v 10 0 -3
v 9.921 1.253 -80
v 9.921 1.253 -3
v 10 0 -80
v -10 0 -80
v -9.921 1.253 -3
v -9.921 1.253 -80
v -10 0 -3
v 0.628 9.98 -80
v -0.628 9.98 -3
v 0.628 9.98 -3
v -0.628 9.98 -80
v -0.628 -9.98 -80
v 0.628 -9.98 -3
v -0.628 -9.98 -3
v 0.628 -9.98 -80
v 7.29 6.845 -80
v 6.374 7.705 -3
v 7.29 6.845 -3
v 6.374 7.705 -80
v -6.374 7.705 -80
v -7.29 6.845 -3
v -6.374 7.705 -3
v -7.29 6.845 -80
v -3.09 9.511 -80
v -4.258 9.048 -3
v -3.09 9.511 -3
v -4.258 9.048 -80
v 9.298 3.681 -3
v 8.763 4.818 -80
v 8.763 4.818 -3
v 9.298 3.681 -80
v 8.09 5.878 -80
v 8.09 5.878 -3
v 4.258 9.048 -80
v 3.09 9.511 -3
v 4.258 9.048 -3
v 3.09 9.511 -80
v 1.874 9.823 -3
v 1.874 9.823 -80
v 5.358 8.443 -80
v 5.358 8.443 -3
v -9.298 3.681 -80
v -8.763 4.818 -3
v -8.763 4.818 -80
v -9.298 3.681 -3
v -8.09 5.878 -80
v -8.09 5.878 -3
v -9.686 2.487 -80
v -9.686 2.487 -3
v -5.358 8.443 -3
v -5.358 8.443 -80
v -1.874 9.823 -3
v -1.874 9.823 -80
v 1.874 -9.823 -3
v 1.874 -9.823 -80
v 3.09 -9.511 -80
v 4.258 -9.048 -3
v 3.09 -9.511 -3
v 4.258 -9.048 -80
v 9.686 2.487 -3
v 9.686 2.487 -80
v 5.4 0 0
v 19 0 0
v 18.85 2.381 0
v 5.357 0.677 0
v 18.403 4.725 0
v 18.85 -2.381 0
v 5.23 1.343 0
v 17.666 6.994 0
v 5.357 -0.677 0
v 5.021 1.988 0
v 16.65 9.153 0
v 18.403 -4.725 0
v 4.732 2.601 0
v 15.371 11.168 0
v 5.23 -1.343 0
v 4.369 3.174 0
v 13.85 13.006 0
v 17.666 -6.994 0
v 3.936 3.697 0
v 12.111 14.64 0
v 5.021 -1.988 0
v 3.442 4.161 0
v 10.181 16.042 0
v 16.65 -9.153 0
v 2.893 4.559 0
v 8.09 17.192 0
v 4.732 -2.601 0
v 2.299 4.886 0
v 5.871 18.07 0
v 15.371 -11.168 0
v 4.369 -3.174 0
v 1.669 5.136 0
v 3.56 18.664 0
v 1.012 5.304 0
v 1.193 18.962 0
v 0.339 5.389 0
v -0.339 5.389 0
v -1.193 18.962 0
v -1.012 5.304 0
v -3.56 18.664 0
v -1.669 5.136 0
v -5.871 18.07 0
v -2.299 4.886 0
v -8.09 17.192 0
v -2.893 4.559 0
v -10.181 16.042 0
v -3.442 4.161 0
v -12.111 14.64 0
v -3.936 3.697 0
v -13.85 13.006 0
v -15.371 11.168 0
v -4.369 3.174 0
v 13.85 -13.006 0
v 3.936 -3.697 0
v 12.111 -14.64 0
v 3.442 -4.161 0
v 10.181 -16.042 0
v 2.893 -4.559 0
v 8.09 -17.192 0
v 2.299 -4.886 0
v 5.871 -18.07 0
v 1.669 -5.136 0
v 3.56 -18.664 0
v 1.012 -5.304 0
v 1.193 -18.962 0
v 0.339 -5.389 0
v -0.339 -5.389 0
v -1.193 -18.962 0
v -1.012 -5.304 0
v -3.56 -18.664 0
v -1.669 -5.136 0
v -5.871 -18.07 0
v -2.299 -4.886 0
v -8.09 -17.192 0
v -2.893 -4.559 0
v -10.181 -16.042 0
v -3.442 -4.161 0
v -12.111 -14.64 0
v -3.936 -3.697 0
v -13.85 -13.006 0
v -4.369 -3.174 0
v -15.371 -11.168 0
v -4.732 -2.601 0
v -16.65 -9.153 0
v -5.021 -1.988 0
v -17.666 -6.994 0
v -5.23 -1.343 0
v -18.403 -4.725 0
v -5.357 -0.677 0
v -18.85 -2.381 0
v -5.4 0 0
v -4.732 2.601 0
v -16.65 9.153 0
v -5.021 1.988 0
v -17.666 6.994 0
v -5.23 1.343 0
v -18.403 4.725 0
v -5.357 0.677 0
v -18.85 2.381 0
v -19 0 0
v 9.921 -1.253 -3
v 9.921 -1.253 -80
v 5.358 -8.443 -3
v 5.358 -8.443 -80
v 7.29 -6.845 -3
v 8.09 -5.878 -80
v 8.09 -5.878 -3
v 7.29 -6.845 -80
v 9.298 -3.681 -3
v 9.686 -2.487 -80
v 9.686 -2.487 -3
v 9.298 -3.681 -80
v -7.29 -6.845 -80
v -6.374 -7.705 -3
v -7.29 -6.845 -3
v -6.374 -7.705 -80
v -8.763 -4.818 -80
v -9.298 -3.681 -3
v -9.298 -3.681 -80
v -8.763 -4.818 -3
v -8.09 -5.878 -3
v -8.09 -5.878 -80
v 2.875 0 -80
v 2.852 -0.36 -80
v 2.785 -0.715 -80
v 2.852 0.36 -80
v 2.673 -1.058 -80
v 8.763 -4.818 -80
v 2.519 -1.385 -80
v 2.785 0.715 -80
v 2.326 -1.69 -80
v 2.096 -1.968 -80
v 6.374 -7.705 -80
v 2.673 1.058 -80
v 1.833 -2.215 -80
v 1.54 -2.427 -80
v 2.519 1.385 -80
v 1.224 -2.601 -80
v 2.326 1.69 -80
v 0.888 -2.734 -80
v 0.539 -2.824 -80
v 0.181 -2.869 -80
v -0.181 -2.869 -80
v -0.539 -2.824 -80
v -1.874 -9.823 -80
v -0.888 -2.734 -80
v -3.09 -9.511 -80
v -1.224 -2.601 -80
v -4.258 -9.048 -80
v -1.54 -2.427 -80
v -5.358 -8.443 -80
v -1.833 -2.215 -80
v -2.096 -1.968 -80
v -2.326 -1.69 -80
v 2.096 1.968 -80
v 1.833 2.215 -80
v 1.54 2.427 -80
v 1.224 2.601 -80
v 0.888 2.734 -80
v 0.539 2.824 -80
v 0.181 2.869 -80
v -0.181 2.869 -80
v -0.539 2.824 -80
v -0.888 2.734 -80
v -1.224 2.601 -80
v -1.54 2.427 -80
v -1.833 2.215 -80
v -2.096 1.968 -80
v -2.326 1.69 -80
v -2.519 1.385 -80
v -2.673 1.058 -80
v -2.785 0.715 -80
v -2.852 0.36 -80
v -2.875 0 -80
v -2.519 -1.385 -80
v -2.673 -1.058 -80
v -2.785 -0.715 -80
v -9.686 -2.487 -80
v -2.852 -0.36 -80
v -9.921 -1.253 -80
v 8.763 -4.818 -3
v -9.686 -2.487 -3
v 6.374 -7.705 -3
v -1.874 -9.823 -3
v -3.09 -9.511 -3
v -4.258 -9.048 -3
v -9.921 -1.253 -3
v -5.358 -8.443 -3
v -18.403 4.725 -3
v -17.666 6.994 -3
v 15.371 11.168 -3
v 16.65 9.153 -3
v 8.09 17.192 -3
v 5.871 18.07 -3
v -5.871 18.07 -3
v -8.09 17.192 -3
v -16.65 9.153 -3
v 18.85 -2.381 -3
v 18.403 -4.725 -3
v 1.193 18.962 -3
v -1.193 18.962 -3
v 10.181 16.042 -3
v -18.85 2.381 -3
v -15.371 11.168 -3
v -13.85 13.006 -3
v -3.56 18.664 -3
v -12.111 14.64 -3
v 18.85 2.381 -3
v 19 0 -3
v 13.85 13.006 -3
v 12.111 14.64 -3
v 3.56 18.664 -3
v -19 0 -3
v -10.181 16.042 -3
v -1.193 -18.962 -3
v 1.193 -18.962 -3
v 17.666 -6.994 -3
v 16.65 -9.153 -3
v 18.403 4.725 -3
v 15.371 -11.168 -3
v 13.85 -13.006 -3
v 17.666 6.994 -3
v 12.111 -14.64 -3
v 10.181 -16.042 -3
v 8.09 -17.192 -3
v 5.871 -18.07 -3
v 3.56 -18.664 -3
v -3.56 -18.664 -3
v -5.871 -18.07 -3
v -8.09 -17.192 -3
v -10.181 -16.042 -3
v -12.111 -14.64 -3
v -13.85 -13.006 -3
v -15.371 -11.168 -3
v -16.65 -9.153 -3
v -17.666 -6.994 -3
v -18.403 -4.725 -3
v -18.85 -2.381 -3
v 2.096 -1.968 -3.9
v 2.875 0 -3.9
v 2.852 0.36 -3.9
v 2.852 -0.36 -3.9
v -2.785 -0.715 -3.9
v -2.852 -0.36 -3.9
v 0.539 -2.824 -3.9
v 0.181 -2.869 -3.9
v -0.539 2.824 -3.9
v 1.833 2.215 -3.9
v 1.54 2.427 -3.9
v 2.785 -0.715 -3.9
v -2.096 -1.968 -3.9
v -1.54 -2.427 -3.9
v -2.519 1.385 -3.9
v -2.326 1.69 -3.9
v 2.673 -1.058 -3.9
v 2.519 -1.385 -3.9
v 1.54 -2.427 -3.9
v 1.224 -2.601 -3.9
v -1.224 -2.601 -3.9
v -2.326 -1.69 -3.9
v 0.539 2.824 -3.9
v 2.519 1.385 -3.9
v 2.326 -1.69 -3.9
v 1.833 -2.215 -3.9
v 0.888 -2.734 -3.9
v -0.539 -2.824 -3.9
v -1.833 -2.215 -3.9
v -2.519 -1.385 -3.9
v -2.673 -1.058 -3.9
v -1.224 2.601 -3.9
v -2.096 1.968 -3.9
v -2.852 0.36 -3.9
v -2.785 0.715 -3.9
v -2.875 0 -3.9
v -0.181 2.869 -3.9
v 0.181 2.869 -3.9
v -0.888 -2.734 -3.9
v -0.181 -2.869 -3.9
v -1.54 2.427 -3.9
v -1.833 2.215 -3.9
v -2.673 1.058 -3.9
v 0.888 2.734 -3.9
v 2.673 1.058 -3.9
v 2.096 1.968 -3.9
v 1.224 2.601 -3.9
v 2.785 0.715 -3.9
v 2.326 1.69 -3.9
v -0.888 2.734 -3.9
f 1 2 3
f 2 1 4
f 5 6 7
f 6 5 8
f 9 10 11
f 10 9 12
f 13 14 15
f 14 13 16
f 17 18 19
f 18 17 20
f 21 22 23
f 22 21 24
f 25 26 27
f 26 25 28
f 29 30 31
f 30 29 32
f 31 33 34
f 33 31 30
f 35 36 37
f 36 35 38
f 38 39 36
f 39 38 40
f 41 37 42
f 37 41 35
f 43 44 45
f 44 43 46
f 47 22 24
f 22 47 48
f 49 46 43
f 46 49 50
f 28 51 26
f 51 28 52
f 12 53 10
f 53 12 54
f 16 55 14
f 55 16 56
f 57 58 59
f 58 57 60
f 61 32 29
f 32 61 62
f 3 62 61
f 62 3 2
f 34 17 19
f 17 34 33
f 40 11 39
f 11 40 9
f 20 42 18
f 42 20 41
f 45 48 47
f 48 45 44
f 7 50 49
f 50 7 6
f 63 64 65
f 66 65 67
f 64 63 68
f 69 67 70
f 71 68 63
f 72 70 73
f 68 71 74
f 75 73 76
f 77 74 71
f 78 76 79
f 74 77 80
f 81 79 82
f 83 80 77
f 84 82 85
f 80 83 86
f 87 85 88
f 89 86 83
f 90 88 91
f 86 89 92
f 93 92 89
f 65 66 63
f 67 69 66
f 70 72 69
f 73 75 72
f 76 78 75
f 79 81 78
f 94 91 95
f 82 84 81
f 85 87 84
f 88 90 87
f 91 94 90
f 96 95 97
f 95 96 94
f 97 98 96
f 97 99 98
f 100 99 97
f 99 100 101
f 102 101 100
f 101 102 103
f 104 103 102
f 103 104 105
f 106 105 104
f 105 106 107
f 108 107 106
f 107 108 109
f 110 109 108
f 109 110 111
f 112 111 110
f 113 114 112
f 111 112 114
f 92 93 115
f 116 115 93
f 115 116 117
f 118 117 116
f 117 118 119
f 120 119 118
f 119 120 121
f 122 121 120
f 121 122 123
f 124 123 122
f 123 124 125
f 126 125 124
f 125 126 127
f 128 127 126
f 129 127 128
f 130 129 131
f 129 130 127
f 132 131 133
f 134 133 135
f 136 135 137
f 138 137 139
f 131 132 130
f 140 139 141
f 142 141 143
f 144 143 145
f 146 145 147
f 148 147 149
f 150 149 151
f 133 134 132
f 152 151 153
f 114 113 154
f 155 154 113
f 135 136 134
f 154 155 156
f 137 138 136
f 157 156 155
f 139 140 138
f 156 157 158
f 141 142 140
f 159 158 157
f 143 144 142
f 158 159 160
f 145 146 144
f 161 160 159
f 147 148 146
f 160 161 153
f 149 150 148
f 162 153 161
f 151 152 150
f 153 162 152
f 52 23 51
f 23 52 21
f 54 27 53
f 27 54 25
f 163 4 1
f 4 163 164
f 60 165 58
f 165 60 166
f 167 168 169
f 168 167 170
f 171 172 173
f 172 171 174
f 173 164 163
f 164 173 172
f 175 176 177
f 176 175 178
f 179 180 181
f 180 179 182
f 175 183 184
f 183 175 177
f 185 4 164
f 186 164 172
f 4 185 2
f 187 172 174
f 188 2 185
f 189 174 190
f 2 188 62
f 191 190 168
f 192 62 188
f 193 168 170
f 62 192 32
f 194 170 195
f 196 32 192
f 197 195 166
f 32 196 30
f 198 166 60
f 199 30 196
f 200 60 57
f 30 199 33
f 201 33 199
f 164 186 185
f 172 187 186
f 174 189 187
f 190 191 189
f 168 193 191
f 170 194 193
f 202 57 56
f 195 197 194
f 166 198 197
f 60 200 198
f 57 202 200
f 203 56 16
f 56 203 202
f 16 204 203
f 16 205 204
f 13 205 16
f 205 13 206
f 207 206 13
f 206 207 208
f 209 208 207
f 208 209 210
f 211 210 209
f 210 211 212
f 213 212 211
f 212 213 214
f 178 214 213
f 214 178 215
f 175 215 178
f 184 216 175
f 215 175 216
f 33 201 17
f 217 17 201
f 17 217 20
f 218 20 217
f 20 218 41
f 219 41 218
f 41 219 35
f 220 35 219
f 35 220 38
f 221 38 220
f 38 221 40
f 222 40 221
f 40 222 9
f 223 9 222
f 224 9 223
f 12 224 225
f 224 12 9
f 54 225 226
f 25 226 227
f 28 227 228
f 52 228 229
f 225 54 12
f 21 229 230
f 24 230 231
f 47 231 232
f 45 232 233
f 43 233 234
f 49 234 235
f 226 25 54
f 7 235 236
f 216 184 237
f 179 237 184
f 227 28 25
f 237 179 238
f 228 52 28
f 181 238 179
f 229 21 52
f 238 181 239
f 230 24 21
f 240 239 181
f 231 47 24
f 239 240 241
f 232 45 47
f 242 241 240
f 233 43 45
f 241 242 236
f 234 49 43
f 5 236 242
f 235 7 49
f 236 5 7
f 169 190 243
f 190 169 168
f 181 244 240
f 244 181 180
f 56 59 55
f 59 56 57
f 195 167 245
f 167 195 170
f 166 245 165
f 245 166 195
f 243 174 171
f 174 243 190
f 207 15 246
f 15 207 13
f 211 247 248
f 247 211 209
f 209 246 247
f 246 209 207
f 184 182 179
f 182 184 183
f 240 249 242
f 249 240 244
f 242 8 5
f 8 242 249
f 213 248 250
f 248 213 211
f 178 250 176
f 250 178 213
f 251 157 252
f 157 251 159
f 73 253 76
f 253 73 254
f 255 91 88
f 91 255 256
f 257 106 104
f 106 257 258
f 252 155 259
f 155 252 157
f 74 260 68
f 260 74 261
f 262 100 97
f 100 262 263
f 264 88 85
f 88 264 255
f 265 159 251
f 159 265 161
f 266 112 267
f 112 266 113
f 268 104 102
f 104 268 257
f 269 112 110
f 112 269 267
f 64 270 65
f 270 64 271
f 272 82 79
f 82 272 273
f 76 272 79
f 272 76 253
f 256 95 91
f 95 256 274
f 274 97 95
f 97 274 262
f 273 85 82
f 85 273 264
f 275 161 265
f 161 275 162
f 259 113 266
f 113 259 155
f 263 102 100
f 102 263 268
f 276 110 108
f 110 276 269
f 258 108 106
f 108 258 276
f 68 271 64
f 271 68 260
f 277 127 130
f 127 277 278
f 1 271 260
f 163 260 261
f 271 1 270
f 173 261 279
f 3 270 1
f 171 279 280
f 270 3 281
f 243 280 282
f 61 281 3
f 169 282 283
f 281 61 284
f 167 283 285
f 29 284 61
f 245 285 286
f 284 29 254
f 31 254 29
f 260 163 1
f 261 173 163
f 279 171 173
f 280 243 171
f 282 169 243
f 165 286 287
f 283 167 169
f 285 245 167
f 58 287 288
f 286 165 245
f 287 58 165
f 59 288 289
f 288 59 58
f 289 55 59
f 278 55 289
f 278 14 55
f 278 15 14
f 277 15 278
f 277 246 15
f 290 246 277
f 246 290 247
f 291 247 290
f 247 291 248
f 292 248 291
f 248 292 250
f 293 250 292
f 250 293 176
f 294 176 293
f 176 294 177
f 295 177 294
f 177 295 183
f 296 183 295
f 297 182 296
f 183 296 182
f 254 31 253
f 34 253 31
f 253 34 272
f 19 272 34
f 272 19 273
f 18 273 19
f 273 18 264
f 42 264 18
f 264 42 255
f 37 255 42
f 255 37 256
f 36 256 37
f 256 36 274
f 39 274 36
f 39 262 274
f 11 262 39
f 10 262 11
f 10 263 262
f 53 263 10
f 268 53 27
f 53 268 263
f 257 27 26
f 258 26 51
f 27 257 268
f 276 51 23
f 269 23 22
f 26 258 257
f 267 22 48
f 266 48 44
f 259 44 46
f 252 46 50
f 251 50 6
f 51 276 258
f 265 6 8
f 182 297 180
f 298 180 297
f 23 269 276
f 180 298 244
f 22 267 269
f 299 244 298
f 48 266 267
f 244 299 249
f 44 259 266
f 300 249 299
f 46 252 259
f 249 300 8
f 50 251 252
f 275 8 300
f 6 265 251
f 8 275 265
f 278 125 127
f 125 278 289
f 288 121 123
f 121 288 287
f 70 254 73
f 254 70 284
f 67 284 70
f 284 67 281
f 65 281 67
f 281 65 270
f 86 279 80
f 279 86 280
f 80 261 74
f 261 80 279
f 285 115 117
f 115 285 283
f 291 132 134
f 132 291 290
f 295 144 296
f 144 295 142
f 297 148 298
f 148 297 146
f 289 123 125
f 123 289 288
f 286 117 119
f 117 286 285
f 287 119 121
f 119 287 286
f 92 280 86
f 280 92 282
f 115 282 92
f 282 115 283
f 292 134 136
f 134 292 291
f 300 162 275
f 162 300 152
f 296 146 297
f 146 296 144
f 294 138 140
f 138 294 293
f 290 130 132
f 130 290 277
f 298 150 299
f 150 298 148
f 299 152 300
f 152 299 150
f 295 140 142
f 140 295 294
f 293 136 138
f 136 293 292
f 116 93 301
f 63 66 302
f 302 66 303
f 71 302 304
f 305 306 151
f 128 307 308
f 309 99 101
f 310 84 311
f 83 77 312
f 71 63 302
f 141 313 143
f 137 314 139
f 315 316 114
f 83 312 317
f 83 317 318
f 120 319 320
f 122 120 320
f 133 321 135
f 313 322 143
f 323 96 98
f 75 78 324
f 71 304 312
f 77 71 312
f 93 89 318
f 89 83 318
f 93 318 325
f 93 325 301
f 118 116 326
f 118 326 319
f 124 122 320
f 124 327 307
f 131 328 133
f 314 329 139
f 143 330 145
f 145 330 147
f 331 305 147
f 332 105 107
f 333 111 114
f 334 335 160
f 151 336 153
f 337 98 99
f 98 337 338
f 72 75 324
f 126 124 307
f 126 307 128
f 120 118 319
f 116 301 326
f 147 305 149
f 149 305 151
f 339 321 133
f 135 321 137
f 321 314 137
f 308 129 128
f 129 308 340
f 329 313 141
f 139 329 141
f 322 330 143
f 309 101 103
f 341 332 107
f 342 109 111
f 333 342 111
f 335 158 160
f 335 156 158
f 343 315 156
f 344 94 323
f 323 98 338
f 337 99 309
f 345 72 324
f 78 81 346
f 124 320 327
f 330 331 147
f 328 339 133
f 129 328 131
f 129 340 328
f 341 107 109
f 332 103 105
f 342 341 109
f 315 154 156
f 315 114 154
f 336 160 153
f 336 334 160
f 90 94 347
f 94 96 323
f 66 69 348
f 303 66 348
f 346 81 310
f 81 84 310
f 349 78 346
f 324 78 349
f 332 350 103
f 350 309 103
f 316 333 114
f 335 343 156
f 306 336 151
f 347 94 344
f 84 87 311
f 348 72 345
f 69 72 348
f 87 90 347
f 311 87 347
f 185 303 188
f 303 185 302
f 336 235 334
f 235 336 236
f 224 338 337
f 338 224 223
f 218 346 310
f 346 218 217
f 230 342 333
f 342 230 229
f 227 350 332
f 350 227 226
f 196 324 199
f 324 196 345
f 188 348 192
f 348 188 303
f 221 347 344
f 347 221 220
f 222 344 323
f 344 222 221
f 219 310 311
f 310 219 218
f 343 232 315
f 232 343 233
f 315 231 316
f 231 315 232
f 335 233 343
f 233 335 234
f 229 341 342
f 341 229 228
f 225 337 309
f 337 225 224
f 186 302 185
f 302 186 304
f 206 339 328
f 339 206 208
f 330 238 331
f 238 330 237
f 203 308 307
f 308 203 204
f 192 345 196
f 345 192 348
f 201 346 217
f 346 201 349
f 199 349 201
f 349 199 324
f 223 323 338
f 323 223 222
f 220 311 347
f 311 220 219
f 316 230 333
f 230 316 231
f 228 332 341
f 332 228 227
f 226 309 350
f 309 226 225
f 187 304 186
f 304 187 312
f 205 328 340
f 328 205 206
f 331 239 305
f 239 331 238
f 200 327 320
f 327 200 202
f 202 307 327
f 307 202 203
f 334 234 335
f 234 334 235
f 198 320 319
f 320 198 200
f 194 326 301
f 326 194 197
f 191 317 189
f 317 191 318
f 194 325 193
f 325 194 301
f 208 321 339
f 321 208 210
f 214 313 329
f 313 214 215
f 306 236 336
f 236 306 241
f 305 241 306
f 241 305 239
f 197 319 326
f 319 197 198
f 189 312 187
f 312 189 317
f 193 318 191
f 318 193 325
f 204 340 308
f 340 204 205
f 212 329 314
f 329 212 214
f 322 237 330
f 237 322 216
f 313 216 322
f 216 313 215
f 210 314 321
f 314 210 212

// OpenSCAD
$fn = 50;


difference() {
	union() {
		translate(v = [0, 0, -80.0000000000]) {
			cylinder(h = 80, r = 10.0000000000);
		}
		translate(v = [0, 0, -3.0000000000]) {
			cylinder(h = 3, r = 19.0000000000);
		}
	}
	union() {
		translate(v = [0, 0, 0]) {
			rotate(a = [0, 0, 0]) {
				difference() {
					union() {
						#translate(v = [0, 0, -80.0000000000]) {
							cylinder(h = 80, r = 2.6000000000);
						}
						#translate(v = [0, 0, -3.9000000000]) {
							cylinder(h = 3.9000000000, r1 = 2.8750000000, r2 = 5.4000000000);
						}
						#translate(v = [0, 0, -80.0000000000]) {
							cylinder(h = 80, r = 2.8750000000);
						}
						#translate(v = [0, 0, -80.0000000000]) {
							cylinder(h = 80, r = 2.6000000000);
						}
					}
					union();
				}
			}
		}
	}
}
